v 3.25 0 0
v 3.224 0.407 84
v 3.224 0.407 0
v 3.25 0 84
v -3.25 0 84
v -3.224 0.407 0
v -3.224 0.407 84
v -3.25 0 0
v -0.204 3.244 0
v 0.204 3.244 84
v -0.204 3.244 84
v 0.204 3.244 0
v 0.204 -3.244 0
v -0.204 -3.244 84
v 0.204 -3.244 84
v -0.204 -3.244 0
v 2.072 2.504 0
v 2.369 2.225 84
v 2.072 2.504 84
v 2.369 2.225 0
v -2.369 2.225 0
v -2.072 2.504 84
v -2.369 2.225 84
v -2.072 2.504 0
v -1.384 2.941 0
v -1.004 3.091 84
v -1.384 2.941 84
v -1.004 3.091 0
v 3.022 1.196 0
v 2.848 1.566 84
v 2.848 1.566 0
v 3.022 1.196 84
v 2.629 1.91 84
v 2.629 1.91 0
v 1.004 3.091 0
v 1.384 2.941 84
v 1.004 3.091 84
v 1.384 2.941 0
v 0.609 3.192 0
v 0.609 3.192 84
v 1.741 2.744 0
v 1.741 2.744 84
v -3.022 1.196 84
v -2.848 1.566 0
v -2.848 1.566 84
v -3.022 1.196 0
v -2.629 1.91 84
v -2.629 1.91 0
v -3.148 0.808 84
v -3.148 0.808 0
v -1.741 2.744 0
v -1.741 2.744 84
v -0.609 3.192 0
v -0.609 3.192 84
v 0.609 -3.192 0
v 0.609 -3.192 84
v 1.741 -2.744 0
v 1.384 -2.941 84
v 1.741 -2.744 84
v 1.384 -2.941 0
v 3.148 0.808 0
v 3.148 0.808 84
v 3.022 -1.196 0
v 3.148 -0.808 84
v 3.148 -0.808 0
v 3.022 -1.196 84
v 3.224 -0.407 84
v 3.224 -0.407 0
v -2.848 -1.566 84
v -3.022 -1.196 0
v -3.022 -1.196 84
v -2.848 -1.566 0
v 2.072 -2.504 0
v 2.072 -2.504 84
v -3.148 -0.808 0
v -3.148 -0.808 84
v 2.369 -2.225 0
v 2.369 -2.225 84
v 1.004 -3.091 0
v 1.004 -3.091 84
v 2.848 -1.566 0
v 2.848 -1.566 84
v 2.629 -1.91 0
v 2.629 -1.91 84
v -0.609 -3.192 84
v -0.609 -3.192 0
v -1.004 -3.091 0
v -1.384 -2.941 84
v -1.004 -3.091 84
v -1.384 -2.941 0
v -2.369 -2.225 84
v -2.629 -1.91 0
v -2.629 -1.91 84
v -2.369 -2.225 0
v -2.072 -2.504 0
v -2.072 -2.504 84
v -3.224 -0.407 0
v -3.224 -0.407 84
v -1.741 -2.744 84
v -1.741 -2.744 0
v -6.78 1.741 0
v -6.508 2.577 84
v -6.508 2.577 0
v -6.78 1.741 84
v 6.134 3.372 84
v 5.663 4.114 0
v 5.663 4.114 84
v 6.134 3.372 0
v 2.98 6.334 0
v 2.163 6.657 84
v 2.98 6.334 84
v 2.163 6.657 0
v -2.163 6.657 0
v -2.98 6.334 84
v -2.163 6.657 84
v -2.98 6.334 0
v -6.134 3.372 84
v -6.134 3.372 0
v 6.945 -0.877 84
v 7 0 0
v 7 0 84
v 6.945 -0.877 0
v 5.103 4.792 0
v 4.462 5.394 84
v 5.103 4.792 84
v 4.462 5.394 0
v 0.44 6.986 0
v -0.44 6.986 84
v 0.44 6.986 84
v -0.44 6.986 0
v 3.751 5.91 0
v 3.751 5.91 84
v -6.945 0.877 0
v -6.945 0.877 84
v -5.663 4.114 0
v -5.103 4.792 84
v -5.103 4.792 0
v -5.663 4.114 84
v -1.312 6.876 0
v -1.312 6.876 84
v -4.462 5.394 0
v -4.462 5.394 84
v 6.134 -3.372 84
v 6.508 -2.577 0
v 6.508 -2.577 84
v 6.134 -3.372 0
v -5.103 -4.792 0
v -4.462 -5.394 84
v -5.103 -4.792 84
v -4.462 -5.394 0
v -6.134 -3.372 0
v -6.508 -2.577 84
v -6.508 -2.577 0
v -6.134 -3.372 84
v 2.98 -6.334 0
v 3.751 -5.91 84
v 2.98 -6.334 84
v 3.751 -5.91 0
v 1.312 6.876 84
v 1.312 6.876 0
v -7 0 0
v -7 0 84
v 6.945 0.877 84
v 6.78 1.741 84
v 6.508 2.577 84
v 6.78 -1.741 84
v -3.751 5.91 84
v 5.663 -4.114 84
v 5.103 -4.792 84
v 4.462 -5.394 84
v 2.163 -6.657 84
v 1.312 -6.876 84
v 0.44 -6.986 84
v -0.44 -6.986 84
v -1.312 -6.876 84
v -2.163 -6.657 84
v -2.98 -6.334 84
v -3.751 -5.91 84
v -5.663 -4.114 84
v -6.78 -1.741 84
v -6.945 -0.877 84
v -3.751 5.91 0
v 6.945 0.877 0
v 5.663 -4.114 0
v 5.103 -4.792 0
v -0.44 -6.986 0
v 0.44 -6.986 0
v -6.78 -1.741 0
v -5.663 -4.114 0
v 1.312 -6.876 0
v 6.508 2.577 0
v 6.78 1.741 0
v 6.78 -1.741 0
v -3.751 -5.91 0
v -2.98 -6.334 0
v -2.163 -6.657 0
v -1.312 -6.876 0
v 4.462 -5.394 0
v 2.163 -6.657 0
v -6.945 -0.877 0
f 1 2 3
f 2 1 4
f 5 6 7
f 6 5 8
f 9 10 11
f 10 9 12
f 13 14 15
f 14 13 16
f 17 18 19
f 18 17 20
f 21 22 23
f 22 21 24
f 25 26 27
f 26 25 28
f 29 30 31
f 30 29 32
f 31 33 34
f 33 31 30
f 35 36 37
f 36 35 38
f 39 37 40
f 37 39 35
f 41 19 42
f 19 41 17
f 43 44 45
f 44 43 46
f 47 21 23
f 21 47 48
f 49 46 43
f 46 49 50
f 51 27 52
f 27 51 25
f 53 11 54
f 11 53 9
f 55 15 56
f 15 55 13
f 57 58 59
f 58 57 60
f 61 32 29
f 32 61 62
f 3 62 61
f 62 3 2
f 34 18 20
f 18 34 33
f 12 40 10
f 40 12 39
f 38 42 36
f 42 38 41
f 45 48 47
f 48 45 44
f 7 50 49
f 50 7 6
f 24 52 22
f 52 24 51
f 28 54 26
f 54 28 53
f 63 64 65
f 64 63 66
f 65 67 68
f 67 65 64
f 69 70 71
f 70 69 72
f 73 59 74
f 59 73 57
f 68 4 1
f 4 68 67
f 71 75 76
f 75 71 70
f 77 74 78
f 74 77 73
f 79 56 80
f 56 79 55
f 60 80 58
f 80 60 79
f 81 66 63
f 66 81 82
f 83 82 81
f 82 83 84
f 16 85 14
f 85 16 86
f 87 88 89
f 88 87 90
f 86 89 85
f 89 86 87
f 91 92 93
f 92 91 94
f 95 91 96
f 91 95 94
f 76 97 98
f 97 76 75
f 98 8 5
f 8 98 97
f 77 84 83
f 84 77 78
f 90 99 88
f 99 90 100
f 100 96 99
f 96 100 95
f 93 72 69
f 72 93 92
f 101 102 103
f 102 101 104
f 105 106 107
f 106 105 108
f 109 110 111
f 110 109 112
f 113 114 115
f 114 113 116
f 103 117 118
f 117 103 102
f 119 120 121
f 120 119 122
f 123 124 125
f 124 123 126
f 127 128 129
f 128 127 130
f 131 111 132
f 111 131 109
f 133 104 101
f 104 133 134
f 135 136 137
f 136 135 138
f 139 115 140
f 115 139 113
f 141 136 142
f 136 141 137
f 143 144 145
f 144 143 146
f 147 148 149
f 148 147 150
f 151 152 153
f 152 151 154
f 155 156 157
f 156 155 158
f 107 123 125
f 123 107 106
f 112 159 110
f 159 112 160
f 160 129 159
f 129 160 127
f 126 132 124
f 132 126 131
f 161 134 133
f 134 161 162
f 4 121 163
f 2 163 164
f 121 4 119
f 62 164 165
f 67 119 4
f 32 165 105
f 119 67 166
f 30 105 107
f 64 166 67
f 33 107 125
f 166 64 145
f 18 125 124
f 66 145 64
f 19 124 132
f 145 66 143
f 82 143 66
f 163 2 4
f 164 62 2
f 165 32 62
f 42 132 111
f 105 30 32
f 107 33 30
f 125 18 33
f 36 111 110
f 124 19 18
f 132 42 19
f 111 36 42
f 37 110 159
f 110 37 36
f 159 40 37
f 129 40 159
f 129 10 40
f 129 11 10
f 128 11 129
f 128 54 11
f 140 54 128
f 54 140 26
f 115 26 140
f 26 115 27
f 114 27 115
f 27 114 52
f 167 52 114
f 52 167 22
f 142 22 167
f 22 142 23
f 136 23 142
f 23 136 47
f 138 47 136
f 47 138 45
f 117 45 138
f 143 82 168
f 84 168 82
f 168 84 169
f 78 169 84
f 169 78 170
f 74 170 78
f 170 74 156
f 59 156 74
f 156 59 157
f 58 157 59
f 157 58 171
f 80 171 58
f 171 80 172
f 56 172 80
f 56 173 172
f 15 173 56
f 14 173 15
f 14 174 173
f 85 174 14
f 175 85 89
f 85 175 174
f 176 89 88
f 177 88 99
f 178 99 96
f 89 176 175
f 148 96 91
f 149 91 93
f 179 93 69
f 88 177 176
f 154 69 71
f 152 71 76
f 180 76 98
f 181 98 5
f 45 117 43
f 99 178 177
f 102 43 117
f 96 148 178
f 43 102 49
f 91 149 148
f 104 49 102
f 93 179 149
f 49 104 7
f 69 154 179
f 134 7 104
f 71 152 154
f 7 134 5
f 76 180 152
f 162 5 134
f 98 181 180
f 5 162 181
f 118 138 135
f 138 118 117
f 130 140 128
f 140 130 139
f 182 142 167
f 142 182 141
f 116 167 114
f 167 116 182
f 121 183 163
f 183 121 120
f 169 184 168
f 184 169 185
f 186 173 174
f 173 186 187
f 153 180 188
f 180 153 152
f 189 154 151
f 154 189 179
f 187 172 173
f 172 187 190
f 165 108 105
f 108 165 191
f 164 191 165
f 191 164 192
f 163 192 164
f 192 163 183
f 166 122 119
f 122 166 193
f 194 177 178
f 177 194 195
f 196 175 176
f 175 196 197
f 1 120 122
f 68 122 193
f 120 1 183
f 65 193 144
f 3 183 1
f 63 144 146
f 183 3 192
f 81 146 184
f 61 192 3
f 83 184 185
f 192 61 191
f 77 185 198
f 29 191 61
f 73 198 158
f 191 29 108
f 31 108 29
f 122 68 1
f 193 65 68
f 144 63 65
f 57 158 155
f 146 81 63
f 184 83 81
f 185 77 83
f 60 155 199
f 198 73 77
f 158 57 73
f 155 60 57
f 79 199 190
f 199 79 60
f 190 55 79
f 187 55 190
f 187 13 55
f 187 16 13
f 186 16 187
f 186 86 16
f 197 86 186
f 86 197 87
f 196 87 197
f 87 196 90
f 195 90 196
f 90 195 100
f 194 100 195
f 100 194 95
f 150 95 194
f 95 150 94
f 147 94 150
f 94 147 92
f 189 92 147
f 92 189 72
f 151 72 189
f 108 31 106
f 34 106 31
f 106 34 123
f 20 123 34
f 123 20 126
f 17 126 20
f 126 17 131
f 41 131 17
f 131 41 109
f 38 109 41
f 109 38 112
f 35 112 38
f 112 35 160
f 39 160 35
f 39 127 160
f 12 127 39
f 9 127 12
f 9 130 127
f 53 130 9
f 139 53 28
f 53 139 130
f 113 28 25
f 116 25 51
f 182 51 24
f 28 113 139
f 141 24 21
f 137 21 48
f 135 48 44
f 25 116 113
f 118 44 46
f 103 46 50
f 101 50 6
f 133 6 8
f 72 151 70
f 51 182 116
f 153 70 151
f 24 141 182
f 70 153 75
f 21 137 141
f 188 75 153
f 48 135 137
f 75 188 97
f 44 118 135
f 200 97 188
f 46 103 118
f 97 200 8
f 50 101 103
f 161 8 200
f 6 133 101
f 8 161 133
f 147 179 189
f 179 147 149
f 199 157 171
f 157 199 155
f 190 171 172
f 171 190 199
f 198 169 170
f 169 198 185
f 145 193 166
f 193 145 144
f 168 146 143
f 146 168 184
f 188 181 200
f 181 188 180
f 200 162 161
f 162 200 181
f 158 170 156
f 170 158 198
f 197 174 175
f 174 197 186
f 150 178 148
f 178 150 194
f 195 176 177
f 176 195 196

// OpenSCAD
$fn = 50;


difference() {
	union() {
		cylinder(h = 84, r = 7.0000000000);
	}
	union() {
		translate(v = [0.0000000000, 0.0000000000, -100.0000000000]) {
			cylinder(h = 200, r = 3.2500000000);
		}
		cylinder(h = 84, r = 1.8000000000);
		cylinder(h = 84, r = 1.8000000000);
		cylinder(h = 84, r = 1.8000000000);
	}
}
